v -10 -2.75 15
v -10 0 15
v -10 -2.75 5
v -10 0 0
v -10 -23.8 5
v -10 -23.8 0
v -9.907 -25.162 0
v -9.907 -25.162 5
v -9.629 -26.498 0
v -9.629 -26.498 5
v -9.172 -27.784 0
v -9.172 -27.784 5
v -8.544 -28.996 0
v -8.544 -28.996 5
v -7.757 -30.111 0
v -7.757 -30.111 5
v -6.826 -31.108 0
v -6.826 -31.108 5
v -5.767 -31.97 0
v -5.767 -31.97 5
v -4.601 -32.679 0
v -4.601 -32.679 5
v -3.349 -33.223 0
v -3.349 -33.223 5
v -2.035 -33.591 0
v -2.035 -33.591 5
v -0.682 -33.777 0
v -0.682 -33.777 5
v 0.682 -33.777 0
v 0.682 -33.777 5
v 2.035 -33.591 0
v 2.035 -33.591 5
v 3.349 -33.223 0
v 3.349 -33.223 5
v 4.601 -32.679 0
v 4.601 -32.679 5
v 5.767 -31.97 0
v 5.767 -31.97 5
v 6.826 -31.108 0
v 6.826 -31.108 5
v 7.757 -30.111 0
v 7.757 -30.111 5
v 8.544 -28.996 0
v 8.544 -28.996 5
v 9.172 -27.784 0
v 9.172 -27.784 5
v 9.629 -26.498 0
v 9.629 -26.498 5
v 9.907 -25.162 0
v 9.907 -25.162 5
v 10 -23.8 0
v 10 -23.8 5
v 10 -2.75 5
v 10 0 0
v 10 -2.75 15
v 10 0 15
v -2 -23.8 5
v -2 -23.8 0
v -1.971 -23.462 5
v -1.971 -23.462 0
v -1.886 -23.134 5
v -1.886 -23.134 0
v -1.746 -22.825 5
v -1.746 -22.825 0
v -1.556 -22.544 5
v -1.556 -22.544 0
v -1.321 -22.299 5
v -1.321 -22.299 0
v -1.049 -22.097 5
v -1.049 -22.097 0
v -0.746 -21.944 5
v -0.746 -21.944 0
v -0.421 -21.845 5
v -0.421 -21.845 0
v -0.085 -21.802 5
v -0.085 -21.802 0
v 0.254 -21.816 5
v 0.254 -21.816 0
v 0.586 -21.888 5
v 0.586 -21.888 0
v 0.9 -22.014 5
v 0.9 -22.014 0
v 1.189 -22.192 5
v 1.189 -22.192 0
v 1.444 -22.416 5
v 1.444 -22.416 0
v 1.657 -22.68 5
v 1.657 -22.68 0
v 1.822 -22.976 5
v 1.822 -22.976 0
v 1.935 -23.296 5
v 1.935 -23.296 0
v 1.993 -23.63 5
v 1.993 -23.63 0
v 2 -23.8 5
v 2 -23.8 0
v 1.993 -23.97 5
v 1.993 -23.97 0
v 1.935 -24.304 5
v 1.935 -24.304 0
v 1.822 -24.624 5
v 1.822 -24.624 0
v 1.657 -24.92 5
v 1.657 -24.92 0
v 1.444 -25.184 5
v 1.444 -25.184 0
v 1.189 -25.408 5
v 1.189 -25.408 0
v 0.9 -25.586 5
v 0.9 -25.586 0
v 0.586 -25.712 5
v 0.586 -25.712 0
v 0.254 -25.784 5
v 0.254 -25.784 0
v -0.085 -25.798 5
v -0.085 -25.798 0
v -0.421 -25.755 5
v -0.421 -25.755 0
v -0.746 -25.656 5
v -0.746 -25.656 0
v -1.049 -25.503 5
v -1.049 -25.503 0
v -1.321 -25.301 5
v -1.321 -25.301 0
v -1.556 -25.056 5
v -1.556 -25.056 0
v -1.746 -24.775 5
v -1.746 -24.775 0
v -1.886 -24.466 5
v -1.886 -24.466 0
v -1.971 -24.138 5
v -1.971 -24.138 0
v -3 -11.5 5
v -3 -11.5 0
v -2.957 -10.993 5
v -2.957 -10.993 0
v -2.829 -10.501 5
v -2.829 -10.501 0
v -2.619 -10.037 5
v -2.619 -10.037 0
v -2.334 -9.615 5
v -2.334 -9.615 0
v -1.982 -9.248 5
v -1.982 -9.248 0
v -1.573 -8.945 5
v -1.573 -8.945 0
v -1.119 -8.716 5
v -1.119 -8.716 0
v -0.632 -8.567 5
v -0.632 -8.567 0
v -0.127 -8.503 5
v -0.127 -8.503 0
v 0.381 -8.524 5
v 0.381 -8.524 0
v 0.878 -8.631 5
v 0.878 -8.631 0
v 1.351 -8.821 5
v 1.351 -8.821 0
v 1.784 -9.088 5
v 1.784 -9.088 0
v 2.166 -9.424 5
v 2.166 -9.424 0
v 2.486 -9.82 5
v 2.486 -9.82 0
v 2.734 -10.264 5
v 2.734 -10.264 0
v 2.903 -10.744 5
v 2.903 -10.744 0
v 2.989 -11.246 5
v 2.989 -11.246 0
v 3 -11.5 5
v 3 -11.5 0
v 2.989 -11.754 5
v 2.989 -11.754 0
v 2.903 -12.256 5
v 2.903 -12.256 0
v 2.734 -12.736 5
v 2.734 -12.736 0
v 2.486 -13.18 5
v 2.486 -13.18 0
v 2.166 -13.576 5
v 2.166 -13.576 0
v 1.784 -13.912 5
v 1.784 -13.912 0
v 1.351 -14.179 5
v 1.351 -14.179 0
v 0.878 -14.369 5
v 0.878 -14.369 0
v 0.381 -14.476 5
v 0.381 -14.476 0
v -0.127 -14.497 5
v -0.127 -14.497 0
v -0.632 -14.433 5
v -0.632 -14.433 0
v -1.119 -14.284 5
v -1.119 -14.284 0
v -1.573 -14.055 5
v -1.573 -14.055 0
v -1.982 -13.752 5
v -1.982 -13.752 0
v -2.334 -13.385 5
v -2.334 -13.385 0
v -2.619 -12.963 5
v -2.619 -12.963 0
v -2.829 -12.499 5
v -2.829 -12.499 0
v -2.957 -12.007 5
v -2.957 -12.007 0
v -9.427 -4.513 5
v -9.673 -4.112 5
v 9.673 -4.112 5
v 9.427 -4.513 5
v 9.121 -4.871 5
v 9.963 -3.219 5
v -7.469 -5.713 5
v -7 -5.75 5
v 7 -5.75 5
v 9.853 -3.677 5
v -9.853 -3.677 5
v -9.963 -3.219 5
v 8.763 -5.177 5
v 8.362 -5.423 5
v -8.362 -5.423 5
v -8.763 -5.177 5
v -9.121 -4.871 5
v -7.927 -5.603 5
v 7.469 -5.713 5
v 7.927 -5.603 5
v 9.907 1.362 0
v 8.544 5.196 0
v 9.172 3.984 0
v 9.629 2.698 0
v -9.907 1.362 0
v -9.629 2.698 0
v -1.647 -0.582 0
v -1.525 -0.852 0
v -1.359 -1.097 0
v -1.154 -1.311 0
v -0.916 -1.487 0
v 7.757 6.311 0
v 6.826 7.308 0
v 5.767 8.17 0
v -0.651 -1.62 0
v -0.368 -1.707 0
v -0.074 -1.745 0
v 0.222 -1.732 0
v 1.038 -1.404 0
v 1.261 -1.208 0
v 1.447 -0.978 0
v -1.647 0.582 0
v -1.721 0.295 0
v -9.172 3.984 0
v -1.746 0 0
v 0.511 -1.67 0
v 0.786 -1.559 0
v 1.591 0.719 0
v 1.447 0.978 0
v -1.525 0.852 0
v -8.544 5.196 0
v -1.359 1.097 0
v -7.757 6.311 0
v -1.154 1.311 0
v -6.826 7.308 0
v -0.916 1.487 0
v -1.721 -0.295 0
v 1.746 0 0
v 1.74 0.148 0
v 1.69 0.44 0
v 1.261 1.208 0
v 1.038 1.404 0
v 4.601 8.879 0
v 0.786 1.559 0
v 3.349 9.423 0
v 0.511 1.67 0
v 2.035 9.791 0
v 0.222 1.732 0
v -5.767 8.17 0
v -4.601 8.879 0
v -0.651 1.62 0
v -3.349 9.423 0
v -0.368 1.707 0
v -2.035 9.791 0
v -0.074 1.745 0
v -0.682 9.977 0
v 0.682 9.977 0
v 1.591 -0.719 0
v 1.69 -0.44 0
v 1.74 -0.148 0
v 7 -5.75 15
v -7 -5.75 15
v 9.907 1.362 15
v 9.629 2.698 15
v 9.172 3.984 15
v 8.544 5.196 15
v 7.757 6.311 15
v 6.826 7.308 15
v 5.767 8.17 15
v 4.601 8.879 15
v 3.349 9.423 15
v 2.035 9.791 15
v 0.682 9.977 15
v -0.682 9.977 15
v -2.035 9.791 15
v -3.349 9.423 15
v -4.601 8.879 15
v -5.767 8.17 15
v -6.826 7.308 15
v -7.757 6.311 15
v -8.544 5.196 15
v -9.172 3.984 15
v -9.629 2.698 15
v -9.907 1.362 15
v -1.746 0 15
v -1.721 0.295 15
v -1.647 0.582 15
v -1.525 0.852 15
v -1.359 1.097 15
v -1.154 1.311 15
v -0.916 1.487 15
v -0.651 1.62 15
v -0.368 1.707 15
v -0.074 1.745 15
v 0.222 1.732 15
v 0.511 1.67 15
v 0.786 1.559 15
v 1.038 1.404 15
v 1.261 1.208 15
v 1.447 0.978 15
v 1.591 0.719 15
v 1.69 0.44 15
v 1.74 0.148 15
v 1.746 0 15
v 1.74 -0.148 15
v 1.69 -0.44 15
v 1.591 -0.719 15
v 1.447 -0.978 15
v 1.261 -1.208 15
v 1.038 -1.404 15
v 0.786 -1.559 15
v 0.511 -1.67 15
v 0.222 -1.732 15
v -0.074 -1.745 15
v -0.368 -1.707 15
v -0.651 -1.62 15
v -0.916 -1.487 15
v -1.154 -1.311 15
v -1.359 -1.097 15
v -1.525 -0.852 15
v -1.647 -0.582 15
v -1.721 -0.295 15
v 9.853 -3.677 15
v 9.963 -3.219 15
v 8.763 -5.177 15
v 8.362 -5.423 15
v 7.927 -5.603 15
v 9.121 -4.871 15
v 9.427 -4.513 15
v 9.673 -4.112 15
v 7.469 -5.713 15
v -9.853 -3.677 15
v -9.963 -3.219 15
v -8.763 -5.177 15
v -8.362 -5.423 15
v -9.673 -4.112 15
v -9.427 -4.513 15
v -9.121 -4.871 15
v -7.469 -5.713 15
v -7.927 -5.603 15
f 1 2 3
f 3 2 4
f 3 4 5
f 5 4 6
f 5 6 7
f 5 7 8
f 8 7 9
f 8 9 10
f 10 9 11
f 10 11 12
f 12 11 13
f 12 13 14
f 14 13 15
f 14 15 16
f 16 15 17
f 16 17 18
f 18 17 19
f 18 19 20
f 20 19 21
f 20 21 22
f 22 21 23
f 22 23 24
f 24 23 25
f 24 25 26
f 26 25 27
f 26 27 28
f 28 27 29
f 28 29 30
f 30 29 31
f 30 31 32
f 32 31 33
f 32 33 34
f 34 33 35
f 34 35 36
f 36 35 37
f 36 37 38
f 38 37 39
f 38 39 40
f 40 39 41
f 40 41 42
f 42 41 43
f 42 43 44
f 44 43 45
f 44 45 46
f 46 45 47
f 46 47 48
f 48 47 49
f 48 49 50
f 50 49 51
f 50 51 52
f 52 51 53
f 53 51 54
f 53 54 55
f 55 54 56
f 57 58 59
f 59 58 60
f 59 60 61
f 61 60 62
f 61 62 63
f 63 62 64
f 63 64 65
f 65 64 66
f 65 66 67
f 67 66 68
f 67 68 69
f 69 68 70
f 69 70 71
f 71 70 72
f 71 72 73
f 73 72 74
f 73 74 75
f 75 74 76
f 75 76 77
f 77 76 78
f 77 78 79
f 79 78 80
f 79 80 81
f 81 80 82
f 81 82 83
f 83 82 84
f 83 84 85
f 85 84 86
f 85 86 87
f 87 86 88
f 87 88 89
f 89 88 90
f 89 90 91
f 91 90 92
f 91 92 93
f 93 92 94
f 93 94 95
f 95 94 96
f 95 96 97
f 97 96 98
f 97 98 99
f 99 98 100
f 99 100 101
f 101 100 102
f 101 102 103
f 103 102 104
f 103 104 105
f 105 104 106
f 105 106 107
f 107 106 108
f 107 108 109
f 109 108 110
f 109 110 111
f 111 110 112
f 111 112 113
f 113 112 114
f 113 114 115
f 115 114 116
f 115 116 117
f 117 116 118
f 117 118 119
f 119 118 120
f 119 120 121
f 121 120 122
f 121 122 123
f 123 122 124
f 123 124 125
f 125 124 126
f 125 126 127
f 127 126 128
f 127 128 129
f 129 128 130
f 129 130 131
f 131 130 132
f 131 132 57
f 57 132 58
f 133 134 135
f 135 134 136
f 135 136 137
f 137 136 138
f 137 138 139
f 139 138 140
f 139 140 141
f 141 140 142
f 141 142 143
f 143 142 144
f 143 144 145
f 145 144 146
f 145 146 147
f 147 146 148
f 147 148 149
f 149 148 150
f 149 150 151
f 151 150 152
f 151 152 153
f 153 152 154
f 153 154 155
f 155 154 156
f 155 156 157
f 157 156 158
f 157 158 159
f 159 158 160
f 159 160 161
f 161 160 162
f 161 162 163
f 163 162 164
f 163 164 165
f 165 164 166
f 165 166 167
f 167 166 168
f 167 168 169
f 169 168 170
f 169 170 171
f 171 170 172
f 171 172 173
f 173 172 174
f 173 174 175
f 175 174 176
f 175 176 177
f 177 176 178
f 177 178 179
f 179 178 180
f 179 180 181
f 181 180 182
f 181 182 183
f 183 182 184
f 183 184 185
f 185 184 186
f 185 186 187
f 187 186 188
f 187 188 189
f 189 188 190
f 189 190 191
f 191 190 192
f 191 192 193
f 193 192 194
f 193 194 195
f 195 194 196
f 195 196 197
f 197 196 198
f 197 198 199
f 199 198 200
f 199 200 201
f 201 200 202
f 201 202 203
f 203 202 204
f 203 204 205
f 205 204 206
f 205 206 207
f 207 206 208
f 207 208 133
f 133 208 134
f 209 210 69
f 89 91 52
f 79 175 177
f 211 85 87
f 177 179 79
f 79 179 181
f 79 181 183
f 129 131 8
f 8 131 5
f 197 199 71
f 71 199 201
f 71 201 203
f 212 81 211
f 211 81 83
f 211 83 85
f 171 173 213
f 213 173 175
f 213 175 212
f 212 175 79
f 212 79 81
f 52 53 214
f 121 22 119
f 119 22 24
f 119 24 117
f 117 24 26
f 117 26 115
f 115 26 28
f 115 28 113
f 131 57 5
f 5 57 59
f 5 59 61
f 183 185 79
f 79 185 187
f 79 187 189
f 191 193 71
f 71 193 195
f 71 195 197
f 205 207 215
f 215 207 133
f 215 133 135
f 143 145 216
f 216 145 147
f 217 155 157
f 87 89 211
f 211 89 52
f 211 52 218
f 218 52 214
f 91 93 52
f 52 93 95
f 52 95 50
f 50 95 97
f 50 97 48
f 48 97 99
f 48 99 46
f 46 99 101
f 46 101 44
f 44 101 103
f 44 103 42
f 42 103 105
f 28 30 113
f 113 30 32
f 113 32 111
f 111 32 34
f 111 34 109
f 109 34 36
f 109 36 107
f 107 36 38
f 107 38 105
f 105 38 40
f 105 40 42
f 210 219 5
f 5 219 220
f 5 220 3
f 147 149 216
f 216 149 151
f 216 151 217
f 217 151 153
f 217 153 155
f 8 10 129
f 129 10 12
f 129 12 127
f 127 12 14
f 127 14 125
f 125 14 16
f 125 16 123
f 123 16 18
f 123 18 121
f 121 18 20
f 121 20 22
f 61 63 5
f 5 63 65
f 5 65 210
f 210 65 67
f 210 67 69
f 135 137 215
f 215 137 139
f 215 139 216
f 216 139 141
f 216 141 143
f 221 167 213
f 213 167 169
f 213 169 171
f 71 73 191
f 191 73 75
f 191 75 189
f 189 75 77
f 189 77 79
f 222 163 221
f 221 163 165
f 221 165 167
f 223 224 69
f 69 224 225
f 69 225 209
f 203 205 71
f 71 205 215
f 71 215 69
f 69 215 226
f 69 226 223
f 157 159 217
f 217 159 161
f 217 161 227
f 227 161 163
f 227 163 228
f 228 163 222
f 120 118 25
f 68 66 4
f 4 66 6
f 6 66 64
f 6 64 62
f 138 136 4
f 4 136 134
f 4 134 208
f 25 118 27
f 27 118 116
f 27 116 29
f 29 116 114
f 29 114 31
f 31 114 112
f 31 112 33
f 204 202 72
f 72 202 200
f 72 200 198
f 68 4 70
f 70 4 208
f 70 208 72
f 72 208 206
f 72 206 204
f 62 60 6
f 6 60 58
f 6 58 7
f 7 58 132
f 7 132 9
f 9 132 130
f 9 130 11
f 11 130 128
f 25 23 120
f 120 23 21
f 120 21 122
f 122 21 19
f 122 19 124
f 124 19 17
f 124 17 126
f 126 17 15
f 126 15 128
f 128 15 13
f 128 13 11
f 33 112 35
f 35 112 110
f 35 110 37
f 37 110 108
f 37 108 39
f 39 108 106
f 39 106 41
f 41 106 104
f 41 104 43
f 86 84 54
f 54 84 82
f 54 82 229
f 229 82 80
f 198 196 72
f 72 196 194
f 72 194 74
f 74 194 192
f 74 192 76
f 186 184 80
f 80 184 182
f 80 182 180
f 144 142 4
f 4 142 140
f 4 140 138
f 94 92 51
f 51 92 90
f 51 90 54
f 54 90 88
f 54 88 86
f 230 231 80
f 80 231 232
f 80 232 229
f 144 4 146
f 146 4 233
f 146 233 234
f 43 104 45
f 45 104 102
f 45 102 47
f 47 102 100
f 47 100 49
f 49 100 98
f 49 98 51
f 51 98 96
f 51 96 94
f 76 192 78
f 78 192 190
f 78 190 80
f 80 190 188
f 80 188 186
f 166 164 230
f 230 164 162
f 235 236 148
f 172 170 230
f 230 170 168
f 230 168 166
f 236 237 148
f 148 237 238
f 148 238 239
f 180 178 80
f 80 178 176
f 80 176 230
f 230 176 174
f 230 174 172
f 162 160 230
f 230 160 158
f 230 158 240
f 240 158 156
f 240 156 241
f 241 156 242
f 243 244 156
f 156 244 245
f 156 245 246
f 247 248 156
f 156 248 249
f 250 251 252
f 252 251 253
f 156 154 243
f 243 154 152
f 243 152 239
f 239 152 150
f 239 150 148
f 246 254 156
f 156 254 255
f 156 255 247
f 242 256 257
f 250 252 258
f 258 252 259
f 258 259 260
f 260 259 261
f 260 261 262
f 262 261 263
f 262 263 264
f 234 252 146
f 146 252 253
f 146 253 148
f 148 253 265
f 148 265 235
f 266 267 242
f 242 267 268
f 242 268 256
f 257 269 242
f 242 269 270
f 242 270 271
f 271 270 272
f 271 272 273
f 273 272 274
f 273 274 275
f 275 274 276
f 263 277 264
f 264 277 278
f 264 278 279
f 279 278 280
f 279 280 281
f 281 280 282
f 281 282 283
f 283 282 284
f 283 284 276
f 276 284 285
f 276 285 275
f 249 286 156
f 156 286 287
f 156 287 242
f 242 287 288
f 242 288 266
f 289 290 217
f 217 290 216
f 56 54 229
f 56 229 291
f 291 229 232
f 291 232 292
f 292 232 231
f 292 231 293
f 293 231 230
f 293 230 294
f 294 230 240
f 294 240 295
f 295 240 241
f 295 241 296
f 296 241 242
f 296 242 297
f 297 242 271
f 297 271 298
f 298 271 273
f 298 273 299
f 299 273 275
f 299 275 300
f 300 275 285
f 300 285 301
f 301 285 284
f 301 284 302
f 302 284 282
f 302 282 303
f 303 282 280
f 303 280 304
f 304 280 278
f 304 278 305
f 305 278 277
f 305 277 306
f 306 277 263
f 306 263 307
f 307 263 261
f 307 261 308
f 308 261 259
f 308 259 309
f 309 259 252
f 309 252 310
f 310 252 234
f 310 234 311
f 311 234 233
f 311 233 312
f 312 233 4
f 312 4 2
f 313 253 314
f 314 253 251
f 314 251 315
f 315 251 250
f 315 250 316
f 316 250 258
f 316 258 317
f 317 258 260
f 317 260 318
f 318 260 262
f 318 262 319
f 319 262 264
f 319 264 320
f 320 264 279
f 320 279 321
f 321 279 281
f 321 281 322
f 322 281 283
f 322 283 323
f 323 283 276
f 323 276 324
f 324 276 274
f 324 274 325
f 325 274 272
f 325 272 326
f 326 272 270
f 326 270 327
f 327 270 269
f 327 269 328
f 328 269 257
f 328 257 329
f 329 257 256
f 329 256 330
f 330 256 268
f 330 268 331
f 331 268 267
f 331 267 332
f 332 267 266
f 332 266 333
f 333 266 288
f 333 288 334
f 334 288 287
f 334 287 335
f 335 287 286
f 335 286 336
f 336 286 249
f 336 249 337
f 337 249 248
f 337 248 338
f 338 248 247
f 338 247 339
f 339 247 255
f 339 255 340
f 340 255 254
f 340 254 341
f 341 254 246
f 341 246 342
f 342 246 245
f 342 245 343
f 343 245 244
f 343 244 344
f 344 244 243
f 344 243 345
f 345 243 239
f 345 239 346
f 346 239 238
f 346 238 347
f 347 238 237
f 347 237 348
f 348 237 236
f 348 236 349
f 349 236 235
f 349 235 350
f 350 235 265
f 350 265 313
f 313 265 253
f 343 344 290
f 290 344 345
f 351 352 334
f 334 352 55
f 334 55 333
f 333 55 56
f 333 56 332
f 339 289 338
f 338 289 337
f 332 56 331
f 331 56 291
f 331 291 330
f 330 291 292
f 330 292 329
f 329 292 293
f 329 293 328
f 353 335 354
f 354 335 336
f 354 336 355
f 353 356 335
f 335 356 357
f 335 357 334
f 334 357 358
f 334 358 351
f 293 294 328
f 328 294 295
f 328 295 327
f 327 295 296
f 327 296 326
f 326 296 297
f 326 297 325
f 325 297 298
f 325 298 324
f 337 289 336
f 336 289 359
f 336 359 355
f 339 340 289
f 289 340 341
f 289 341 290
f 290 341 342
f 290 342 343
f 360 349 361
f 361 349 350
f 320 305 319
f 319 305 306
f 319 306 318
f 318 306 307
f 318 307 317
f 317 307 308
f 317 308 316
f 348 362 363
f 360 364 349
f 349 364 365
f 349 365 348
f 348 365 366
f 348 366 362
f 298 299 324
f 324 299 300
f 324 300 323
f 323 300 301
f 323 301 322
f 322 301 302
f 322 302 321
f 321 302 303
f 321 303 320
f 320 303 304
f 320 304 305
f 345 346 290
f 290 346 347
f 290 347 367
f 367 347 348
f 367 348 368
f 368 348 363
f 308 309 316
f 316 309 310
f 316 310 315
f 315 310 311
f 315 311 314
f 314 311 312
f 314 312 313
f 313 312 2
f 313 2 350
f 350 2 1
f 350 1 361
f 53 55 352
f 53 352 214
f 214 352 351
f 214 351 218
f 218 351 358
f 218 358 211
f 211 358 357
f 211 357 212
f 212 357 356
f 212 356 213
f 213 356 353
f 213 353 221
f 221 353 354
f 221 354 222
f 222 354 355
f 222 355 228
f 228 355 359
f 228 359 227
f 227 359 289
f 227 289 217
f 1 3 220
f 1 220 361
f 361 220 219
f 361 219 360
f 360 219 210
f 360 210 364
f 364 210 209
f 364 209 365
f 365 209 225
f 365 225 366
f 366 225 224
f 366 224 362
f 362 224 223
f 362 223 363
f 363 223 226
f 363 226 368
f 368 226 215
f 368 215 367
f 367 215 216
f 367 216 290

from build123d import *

# Parameters (mm, degrees)
SKETCH1_R           = 2
SKETCH1_R_2         = 3
BOSS_EXTRUDE1_DEPTH = 5
SKETCH1_3_R         = 1.74625
BOSS_EXTRUDE2_DEPTH = 15
FILLET1_R           = 3


with BuildPart() as part:
    # Sketch1 → Boss-Extrude1 (new body)
    with BuildSketch(Plane.XY):
        with BuildLine():
            Line((10, -23.8), (10, -5.75))
            Line((10, -5.75), (-10, -5.75))
            Line((-10, -5.75), (-10, -23.8))
            ThreePointArc((-10, -23.8), (0, -33.8), (10, -23.8))
        make_face()
        with Locations((0, -23.8)):
            Circle(SKETCH1_R, mode=Mode.SUBTRACT)
        with Locations((0, -11.5)):
            Circle(SKETCH1_R_2, mode=Mode.SUBTRACT)
    extrude(amount=BOSS_EXTRUDE1_DEPTH)

    # Sketch1<3> → Boss-Extrude2 (add)
    with BuildSketch(Plane.XY):
        with BuildLine():
            Line((10, -5.75), (10, 0))
            ThreePointArc((10, 0), (0, 10), (-10, 0))
            Line((-10, 0), (-10, -5.75))
            Line((-10, -5.75), (10, -5.75))
        make_face()
        Circle(SKETCH1_3_R, mode=Mode.SUBTRACT)
    extrude(amount=BOSS_EXTRUDE2_DEPTH)

    # Fillet1
    fillet1_edges = [part.edges().sort_by_distance(p)[0] for p in [
        (-10, -5.75, 10),
        (10, -5.75, 10),
    ]]
    fillet(fillet1_edges, radius=FILLET1_R)


solid = part.part
